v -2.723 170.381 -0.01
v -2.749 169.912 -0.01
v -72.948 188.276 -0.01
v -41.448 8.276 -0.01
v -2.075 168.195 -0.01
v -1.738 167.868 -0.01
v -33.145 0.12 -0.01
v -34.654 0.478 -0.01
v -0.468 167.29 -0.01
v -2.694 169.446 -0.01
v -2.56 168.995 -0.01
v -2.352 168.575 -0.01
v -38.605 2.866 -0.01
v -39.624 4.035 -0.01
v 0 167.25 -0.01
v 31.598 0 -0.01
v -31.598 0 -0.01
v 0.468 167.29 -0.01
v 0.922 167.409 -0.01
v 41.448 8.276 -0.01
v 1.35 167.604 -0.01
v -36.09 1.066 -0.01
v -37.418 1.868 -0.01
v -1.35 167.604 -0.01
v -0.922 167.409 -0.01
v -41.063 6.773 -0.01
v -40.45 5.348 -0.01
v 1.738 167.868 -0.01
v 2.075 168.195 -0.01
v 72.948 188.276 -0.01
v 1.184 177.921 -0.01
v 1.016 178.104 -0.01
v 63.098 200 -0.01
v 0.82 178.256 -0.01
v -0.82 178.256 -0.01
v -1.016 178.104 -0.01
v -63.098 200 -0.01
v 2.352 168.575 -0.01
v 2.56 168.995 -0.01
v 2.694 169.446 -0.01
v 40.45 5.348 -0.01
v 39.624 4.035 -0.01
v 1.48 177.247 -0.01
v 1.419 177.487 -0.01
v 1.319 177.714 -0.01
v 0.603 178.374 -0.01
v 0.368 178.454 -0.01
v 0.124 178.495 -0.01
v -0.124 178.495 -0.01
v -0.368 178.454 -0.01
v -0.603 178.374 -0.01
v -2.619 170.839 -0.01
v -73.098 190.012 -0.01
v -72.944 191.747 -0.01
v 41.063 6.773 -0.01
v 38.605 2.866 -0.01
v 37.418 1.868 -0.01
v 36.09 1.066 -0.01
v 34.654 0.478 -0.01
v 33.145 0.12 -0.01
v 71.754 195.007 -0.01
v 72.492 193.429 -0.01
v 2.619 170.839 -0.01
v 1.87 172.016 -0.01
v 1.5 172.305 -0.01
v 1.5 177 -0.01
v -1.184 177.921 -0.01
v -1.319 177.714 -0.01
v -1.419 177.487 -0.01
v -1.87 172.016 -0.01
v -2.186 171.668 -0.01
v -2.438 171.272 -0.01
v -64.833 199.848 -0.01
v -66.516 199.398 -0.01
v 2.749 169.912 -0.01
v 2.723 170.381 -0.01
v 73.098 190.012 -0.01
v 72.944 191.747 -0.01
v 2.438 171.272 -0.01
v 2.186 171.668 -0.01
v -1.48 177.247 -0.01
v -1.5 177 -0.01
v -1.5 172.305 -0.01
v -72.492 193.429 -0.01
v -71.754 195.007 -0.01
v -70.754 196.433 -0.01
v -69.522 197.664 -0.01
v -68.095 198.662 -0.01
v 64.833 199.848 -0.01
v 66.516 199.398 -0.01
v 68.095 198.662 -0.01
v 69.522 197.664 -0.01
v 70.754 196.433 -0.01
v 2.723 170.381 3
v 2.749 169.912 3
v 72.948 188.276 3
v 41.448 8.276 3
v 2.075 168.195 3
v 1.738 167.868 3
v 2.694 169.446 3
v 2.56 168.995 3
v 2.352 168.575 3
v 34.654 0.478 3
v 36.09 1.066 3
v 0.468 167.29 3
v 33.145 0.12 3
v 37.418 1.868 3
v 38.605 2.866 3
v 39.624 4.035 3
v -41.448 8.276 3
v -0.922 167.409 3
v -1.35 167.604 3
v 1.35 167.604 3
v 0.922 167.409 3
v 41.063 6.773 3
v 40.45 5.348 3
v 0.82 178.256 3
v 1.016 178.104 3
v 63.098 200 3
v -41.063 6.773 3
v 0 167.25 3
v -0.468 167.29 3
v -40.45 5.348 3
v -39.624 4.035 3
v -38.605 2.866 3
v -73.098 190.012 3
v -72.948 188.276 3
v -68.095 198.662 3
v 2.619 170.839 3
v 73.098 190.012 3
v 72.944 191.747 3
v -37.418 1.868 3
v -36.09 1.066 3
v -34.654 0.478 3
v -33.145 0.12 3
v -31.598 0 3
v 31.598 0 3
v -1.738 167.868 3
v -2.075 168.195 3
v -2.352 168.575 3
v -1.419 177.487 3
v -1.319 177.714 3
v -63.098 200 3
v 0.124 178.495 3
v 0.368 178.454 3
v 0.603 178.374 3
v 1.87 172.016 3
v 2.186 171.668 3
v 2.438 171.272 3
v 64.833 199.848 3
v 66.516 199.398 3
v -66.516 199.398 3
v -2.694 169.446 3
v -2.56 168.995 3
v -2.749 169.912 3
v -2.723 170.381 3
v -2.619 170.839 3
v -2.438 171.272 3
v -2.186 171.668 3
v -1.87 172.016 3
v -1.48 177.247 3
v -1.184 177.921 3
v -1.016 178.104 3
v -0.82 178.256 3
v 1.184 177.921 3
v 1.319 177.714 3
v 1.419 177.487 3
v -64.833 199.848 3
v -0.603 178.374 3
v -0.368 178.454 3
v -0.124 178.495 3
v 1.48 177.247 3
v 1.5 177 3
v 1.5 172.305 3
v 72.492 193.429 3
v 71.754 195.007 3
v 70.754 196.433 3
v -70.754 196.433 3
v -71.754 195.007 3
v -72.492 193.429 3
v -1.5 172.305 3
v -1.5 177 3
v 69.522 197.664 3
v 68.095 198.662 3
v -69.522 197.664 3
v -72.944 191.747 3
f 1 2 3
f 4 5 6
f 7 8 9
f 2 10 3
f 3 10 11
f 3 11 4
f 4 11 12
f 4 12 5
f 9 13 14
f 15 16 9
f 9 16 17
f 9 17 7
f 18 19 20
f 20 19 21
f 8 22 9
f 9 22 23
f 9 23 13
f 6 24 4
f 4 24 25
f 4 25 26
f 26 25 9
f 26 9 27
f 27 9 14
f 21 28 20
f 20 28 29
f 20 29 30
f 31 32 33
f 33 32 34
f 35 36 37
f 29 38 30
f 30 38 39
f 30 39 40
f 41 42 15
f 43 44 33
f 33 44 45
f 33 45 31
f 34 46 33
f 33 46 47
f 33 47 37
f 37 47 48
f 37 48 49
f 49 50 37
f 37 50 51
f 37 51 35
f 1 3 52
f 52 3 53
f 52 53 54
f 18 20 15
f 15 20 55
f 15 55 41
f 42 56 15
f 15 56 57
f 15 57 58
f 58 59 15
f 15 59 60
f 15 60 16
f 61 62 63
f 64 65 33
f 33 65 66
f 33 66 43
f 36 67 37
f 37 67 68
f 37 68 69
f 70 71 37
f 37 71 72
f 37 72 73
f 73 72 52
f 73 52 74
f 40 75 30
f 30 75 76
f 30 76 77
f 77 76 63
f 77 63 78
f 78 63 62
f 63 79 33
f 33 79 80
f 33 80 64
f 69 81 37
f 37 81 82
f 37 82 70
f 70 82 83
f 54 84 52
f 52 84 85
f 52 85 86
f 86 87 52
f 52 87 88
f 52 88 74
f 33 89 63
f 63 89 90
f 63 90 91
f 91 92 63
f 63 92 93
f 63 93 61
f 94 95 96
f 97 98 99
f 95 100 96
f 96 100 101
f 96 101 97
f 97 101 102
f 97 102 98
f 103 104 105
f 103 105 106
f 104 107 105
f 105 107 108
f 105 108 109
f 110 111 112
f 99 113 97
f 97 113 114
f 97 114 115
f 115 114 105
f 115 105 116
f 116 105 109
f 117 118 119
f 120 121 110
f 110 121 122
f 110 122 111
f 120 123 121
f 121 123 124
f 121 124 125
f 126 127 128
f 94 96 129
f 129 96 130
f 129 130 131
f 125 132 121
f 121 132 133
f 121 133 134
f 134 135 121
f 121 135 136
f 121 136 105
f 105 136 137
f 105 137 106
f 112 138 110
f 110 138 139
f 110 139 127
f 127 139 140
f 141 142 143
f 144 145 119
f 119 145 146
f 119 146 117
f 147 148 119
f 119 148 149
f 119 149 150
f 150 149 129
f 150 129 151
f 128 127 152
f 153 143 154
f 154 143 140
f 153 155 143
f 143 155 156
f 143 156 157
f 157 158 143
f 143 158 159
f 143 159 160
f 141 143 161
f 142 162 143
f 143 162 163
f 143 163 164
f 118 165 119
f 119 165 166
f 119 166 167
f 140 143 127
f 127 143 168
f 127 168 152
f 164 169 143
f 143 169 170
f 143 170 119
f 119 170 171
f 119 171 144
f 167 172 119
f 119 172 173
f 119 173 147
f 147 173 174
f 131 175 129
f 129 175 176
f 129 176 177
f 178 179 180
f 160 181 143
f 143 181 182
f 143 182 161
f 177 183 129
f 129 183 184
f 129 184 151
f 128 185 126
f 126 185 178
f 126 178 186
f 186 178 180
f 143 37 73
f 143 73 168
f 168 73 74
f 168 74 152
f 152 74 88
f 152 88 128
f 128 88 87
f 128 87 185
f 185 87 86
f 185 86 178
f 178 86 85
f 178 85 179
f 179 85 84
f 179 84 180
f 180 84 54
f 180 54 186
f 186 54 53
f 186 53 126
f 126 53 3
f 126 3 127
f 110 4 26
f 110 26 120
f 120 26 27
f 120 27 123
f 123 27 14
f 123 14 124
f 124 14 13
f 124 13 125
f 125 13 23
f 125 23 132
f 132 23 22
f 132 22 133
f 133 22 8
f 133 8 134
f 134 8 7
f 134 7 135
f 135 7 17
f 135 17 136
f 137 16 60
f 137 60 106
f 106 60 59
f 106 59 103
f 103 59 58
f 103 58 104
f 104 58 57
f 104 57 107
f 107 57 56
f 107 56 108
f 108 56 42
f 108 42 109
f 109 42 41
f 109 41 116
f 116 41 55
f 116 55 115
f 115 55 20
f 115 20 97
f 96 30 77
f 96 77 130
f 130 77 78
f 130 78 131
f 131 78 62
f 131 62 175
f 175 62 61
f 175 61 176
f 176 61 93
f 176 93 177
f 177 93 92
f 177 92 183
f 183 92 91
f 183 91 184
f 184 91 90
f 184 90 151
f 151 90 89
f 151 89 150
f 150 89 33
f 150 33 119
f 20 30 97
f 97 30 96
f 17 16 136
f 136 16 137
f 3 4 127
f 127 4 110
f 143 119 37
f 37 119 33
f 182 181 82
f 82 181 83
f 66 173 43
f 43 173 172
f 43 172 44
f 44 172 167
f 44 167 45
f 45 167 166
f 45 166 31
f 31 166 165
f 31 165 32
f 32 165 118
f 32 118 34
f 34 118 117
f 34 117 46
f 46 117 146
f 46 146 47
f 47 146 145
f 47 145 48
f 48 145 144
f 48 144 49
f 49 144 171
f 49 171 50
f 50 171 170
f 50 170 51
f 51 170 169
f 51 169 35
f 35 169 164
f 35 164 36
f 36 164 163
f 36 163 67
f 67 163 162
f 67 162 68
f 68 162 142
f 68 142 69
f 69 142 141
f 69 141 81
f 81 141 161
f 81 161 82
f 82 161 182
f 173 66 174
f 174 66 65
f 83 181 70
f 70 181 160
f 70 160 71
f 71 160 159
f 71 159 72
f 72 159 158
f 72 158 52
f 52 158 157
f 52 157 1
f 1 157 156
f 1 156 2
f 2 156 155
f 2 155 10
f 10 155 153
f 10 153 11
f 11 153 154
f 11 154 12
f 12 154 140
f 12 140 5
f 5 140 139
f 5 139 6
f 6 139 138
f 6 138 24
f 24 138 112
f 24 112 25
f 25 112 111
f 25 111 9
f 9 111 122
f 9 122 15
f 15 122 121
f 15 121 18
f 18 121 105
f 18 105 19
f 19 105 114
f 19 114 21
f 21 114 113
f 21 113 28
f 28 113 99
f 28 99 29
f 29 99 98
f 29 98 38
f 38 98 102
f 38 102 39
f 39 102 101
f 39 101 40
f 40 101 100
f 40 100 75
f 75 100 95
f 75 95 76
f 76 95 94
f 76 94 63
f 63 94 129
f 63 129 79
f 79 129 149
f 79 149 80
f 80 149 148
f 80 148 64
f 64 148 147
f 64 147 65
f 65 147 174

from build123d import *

# Parameters (mm, degrees)
BOSS_EXTRUDE1_DEPTH      = 3
BOSS_EXTRUDE1_DEPTH_BACK = 0.01
FILLET1_R                = 10
FILLET2_R                = 10
FILLET3_R                = 10
FILLET4_R                = 10
CUT_EXTRUDE8_DEPTH       = 10


with BuildPart() as part:
    # Sketch1 → Boss-Extrude1 (new, two sides: drawn at the far end of the back side and taken through both)
    with BuildSketch(Plane.XY.offset(-BOSS_EXTRUDE1_DEPTH_BACK)):
        Polygon((-40, 0), (40, 0), (75, 200), (-75, 200), align=None)
    extrude(amount=BOSS_EXTRUDE1_DEPTH + BOSS_EXTRUDE1_DEPTH_BACK)

    # Fillet1
    fillet1_edges = [part.edges().sort_by_distance(p)[0] for p in [
        (75, 200, 1.495),
    ]]
    fillet(fillet1_edges, radius=FILLET1_R)

    # Fillet2
    fillet2_edges = [part.edges().sort_by_distance(p)[0] for p in [
        (40, 0, 1.495),
    ]]
    fillet(fillet2_edges, radius=FILLET2_R)

    # Fillet3
    fillet3_edges = [part.edges().sort_by_distance(p)[0] for p in [
        (-40, 0, 1.495),
    ]]
    fillet(fillet3_edges, radius=FILLET3_R)

    # Fillet4
    fillet4_edges = [part.edges().sort_by_distance(p)[0] for p in [
        (-75, 200, 1.495),
    ]]
    fillet(fillet4_edges, radius=FILLET4_R)

    # Sketch4 → Cut-Extrude8 (cut)
    with BuildSketch(Plane.XY.offset(3)):
        with BuildLine():
            Line((-1.5, 177), (-1.5, 172.304886114))
            ThreePointArc((-1.5, 172.304886114), (0, 172.75), (1.5, 172.304886114))
            Line((1.5, 172.304886114), (1.5, 177))
            ThreePointArc((1.5, 177), (0, 178.5), (-1.5, 177))
        make_face()
        with BuildLine():
            ThreePointArc((1.5, 170), (0, 168.5), (-1.5, 170))
            Line((-1.5, 170), (-1.5, 172.304886114))
            ThreePointArc((-1.5, 172.304886114), (-1.31101106, 167.582615049), (2.75, 170))
            ThreePointArc((2.75, 170), (2.417384951, 171.31101106), (1.5, 172.304886114))
            Line((1.5, 172.304886114), (1.5, 170))
        make_face()
        with BuildLine():
            Line((-1.5, 172.304886114), (-1.5, 170))
            ThreePointArc((-1.5, 170), (0, 168.5), (1.5, 170))
            Line((1.5, 170), (1.5, 172.304886114))
            ThreePointArc((1.5, 172.304886114), (0, 172.75), (-1.5, 172.304886114))
        make_face()
    extrude(amount=-CUT_EXTRUDE8_DEPTH, mode=Mode.SUBTRACT)


solid = part.part
